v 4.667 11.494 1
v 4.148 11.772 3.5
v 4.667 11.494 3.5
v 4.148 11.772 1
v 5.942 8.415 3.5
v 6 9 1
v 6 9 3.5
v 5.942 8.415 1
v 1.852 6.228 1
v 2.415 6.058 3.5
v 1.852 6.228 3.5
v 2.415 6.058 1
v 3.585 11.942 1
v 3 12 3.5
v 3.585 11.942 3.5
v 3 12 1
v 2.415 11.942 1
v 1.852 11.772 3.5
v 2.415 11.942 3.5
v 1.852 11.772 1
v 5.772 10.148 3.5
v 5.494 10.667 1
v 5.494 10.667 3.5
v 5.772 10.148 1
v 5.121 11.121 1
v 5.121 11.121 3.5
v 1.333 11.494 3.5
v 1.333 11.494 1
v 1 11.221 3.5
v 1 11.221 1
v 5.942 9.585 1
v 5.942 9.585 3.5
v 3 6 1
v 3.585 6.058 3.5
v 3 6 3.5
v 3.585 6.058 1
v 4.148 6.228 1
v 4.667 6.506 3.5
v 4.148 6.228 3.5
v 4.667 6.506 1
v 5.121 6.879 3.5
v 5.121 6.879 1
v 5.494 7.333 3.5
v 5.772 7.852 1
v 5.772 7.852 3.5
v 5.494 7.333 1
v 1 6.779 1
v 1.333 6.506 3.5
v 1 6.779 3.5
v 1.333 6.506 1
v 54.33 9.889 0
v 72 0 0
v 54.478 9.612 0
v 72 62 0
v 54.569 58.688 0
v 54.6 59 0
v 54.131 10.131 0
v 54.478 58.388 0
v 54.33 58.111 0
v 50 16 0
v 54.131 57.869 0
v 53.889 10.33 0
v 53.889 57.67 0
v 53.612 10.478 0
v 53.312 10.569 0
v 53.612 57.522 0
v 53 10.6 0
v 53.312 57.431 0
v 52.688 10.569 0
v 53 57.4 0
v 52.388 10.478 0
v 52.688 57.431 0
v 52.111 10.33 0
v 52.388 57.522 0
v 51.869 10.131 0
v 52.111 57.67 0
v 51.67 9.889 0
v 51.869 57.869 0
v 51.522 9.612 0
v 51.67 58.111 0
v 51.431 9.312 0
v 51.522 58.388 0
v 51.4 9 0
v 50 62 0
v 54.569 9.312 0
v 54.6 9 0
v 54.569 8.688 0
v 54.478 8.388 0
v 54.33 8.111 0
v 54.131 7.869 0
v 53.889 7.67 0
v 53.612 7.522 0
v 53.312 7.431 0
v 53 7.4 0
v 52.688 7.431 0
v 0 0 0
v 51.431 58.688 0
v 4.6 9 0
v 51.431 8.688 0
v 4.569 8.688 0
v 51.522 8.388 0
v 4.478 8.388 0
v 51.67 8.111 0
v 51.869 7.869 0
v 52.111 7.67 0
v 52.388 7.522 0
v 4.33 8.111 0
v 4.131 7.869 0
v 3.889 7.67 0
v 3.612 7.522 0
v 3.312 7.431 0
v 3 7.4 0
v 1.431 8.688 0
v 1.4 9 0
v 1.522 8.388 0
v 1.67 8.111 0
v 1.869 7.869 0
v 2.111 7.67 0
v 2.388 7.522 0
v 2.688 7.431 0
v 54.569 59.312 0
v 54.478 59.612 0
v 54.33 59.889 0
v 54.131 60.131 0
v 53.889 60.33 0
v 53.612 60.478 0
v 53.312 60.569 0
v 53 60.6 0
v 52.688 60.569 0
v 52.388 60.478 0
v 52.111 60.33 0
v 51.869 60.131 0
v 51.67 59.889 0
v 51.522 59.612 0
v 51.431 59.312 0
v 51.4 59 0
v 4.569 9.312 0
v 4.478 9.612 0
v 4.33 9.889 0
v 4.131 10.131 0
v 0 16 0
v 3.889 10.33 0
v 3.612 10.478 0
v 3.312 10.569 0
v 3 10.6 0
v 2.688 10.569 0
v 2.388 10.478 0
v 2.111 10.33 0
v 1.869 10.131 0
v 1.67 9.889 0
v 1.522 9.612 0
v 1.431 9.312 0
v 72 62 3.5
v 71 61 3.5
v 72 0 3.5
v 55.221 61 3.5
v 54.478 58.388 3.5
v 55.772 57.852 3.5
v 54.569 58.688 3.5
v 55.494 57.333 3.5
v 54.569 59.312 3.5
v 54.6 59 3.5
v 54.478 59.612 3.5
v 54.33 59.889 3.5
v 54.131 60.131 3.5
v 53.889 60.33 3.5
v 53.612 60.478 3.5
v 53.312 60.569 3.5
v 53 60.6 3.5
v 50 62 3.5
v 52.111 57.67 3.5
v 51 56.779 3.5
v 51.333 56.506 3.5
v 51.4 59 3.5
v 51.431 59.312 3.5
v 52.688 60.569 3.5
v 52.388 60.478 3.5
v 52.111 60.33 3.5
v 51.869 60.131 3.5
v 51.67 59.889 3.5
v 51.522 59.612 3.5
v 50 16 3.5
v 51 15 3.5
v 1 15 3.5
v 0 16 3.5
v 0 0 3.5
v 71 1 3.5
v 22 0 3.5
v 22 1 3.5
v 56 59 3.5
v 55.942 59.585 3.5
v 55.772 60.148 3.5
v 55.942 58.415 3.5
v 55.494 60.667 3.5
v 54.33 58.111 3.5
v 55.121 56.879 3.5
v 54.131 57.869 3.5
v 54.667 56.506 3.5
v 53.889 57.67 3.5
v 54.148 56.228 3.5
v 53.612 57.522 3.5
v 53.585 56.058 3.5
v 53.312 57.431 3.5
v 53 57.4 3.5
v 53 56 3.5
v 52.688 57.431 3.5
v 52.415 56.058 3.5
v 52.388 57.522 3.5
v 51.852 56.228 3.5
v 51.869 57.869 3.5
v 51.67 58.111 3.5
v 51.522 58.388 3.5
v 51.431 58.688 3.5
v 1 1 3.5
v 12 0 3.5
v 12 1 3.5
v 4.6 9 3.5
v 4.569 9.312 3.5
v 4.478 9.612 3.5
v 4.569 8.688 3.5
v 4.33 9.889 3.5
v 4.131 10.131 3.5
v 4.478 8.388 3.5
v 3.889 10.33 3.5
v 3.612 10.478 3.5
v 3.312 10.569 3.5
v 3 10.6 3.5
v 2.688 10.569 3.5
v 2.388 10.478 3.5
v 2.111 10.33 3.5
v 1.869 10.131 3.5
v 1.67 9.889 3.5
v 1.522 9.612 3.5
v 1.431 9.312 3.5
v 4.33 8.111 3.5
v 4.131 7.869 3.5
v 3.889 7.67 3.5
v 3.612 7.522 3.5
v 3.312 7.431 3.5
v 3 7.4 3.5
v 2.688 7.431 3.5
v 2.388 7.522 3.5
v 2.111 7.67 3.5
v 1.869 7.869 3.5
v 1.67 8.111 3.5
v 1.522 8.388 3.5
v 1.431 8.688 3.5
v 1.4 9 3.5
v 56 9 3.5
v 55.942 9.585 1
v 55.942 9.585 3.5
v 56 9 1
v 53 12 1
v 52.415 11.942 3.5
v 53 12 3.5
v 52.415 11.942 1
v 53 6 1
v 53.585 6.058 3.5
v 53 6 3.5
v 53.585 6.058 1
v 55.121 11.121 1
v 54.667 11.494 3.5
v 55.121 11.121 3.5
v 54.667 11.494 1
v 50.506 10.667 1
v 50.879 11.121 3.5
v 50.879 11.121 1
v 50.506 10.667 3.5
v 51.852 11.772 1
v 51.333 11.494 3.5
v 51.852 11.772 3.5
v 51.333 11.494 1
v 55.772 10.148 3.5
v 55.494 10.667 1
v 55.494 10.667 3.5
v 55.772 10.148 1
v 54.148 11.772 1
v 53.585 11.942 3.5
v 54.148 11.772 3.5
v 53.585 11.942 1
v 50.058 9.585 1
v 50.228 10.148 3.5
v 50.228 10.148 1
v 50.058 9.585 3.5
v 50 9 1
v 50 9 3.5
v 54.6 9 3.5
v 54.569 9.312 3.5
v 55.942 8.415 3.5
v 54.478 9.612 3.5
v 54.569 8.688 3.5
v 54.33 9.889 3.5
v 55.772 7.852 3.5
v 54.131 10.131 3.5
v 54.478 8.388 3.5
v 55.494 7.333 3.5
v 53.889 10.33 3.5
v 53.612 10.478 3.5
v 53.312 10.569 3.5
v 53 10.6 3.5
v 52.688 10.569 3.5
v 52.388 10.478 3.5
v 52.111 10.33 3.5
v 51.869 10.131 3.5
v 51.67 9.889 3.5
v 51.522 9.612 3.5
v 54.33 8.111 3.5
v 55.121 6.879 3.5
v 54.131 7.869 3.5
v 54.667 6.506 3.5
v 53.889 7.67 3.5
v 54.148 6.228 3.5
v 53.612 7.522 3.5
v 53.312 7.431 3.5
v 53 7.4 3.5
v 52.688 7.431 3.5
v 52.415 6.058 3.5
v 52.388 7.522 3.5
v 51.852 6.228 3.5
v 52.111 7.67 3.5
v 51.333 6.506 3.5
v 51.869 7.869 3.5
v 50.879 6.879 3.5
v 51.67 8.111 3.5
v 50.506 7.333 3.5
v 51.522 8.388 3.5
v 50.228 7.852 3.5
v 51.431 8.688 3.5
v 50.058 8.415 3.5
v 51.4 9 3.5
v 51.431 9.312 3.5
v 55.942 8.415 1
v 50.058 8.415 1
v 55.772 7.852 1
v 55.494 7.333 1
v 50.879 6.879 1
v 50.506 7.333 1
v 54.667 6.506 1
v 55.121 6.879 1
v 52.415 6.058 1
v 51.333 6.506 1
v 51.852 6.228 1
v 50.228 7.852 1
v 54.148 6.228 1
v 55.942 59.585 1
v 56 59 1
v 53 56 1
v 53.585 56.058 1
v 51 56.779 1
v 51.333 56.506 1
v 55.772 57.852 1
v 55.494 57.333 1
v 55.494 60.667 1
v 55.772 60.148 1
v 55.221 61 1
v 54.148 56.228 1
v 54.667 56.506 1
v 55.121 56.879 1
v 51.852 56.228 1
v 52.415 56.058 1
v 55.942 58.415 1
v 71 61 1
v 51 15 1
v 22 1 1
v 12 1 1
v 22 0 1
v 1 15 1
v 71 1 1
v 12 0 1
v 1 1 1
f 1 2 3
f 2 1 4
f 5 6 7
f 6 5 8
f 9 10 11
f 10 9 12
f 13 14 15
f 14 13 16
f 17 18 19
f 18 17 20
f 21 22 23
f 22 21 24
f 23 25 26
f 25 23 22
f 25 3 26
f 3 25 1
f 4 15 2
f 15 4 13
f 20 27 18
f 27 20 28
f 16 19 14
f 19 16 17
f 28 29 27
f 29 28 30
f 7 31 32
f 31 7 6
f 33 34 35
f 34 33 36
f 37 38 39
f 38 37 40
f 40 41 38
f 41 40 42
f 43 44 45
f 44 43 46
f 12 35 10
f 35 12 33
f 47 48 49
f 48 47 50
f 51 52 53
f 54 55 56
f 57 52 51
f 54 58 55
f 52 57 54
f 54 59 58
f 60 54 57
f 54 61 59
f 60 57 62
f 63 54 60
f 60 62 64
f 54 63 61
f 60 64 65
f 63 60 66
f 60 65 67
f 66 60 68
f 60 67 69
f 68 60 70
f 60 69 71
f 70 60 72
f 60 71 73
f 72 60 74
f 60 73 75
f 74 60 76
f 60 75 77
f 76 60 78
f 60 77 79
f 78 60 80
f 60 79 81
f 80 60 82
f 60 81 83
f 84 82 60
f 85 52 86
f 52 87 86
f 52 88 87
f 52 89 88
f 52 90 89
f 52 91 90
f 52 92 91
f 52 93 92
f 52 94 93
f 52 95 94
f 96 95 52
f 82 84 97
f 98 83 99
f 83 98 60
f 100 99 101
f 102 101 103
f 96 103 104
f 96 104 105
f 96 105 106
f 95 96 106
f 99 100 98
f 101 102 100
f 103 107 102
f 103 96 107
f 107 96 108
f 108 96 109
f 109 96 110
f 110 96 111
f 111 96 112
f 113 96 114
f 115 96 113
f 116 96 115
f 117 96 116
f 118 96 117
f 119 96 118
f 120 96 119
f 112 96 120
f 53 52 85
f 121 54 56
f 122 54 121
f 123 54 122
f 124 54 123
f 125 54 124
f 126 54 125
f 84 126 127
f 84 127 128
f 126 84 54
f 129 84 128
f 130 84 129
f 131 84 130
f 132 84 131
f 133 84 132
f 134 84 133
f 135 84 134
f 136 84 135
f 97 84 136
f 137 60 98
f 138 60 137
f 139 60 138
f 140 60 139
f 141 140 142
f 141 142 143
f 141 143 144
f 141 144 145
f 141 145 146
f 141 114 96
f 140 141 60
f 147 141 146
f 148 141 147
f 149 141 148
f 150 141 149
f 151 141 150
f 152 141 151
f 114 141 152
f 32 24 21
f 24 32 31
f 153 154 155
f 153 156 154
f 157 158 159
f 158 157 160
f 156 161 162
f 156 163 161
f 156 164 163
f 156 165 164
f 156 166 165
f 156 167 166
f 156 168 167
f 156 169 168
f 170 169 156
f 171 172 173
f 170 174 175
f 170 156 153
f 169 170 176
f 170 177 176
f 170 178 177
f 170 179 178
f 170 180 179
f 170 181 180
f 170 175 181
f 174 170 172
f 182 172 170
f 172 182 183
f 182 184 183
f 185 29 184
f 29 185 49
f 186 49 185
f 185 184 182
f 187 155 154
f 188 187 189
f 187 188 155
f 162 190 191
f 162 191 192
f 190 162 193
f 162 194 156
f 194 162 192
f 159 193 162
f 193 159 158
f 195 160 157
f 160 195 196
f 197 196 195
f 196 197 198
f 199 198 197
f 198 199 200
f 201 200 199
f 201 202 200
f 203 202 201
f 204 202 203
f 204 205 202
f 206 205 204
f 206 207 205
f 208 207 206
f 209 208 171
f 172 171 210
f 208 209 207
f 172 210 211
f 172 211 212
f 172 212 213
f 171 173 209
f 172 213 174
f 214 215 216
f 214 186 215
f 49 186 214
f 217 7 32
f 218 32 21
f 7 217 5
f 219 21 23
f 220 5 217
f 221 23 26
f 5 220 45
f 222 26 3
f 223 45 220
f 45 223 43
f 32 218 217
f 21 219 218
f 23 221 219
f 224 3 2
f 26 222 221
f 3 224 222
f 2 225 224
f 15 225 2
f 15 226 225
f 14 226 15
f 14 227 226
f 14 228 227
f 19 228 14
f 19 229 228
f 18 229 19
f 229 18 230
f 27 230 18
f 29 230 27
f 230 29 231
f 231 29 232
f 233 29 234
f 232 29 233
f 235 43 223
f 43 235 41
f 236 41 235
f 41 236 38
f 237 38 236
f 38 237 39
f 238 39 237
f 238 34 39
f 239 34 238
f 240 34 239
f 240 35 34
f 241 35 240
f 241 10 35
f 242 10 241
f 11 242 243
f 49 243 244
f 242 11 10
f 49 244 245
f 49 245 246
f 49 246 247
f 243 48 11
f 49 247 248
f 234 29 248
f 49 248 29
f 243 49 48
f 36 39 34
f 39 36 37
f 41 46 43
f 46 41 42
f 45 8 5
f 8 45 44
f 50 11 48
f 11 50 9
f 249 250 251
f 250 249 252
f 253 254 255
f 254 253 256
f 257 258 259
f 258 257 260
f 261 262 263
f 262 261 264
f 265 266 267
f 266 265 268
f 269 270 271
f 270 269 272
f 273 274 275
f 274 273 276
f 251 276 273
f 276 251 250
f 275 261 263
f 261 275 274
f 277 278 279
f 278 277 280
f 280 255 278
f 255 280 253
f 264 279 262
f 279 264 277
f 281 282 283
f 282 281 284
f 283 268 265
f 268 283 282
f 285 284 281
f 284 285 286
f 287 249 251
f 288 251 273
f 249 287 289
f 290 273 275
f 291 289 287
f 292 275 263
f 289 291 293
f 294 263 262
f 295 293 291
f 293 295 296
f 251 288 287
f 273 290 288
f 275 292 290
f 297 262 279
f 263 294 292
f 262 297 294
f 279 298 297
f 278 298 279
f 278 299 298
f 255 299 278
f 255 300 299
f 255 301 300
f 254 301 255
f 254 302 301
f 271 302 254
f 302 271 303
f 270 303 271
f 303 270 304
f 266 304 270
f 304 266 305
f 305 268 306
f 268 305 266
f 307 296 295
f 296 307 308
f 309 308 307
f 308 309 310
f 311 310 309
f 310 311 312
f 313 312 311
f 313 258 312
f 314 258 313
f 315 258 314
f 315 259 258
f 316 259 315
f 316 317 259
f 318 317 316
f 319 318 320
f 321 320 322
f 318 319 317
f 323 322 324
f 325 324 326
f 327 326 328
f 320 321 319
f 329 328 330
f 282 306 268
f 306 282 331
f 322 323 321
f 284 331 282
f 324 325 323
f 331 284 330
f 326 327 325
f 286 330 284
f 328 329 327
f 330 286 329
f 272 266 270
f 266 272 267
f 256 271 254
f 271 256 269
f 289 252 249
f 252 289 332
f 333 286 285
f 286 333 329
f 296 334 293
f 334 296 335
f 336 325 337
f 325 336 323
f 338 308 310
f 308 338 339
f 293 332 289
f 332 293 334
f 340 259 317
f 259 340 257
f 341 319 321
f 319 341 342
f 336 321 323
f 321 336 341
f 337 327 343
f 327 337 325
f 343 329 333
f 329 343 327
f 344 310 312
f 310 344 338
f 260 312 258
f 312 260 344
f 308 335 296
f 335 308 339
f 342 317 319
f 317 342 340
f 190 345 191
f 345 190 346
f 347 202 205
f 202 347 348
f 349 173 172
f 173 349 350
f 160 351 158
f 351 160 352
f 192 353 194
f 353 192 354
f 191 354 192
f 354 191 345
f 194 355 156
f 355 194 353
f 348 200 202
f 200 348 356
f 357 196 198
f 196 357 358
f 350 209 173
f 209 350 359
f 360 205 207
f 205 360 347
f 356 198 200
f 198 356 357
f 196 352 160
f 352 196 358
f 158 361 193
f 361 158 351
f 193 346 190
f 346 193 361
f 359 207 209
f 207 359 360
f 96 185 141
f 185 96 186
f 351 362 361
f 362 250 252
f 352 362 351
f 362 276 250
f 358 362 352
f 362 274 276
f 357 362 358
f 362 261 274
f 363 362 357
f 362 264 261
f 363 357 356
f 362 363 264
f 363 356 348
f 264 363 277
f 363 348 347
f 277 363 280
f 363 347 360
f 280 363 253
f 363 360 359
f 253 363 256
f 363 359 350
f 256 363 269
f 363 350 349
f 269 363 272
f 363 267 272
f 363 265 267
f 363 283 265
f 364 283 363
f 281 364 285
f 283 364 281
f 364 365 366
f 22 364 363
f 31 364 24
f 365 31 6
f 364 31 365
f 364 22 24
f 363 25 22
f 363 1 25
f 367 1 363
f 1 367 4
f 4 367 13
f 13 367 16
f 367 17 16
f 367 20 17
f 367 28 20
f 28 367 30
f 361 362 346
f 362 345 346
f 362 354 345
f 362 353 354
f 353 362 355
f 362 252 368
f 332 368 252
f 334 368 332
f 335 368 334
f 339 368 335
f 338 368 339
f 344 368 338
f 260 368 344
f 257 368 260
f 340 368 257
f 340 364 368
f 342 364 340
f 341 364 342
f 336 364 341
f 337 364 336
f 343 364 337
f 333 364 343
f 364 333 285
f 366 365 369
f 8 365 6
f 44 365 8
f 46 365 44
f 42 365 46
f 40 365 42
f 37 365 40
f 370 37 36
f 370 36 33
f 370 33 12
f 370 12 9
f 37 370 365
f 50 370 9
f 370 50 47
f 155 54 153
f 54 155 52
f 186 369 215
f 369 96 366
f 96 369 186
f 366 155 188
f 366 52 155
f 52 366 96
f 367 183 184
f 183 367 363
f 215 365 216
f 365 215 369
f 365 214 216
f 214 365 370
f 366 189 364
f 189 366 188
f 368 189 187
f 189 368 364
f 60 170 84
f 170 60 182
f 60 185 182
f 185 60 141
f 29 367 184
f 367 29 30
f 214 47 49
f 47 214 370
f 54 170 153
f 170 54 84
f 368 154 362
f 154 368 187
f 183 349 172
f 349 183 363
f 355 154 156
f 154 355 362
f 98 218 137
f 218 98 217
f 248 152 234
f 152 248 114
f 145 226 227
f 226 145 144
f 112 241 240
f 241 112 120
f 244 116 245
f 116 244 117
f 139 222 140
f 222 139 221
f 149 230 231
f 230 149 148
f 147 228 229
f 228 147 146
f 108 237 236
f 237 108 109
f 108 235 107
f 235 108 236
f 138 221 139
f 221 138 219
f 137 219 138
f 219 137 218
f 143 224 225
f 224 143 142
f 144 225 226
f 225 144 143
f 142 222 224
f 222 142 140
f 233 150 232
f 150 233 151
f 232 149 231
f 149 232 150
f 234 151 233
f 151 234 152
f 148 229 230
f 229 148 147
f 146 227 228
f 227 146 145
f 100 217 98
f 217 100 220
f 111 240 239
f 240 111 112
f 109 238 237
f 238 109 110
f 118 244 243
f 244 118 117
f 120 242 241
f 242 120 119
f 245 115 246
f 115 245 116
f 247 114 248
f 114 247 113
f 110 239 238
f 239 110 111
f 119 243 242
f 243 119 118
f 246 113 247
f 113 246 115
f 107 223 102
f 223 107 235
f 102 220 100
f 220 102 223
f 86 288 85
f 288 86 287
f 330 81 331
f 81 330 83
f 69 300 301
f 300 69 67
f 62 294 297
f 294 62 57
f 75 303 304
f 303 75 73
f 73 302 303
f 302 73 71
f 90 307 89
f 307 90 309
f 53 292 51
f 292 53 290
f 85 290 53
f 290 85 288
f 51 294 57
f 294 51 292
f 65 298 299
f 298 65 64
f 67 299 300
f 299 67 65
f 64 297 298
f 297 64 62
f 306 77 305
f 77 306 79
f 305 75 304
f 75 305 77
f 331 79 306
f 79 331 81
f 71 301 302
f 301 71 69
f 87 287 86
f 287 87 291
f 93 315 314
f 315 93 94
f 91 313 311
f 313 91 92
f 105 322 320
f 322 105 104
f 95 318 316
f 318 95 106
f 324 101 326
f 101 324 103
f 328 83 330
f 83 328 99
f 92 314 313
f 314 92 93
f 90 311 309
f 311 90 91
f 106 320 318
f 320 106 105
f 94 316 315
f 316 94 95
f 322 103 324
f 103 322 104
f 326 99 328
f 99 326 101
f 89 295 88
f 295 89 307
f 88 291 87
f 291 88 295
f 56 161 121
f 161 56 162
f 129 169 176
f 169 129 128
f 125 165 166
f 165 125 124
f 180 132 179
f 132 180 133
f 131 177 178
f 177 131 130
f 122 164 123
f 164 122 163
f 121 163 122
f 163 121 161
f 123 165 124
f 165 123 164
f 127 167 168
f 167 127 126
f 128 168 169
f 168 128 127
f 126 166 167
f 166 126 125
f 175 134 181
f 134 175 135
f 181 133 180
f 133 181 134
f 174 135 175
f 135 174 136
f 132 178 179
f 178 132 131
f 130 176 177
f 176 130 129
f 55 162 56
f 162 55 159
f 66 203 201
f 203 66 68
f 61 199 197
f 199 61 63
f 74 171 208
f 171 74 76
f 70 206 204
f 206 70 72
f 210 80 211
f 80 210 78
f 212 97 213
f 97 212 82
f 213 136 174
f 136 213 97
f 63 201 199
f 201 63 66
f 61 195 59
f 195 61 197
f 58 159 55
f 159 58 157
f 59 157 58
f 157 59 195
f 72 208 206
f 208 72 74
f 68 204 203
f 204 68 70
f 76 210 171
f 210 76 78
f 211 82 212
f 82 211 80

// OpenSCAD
// COB width
cob_x = 72;
// COB length
cob_y = 62;
// Bottom cover length
cob_b_cover_y = 15;
// Side cover width
cob_s_cover_x = 22;

screw_post_dia = 6;
screw_hole_dia = 3.2;

plate_z = 1;
plate_distance = 2.5;
rim_x = plate_z;
rim_y = plate_z;

rim_z = plate_z + plate_distance;

f = 0.01;
df = 2 * f;

$fn = 32;

difference() {
    union() {
        // Bottom Cover
        cube([cob_x, cob_b_cover_y, plate_z]);
        cube([12, 1, rim_z]);
        translate([22, 0, 0])
            cube([cob_x - 22, rim_y, rim_z]);
        translate([0, cob_b_cover_y, 0])
            cube([cob_x - cob_s_cover_x, rim_y, rim_z]);
        cube([rim_x, cob_b_cover_y, rim_z]);

        // Side Cover
        translate([cob_x - cob_s_cover_x, 0, 0])
            cube([cob_s_cover_x, cob_y, plate_z]);
        translate([cob_x - rim_x, 0, 0])
            cube([rim_x, cob_y, rim_z]);
        translate([cob_x - cob_s_cover_x, cob_b_cover_y, 0])
            cube([rim_x, cob_y - cob_b_cover_y, rim_z]);
        translate([cob_x - cob_s_cover_x, cob_y - rim_y, 0])
            cube([cob_s_cover_x, rim_y, rim_z]);
            
        // Screw Posts
        translate([3, 9, 0]) {
            cylinder(d = screw_post_dia, h = rim_z);
            translate([50, 0, 0])
                cylinder(d = screw_post_dia, h = rim_z);
            translate([50, 50, 0])
                cylinder(d = screw_post_dia, h = rim_z);
        }
    }
    translate([3, 9, -f]) {
        cylinder(d = screw_hole_dia, h = rim_z + df);
        translate([50, 0, 0])
            cylinder(d = screw_hole_dia, h = rim_z + df);
        translate([50, 50, 0])
            cylinder(d = screw_hole_dia, h = rim_z + df);
    }
}
